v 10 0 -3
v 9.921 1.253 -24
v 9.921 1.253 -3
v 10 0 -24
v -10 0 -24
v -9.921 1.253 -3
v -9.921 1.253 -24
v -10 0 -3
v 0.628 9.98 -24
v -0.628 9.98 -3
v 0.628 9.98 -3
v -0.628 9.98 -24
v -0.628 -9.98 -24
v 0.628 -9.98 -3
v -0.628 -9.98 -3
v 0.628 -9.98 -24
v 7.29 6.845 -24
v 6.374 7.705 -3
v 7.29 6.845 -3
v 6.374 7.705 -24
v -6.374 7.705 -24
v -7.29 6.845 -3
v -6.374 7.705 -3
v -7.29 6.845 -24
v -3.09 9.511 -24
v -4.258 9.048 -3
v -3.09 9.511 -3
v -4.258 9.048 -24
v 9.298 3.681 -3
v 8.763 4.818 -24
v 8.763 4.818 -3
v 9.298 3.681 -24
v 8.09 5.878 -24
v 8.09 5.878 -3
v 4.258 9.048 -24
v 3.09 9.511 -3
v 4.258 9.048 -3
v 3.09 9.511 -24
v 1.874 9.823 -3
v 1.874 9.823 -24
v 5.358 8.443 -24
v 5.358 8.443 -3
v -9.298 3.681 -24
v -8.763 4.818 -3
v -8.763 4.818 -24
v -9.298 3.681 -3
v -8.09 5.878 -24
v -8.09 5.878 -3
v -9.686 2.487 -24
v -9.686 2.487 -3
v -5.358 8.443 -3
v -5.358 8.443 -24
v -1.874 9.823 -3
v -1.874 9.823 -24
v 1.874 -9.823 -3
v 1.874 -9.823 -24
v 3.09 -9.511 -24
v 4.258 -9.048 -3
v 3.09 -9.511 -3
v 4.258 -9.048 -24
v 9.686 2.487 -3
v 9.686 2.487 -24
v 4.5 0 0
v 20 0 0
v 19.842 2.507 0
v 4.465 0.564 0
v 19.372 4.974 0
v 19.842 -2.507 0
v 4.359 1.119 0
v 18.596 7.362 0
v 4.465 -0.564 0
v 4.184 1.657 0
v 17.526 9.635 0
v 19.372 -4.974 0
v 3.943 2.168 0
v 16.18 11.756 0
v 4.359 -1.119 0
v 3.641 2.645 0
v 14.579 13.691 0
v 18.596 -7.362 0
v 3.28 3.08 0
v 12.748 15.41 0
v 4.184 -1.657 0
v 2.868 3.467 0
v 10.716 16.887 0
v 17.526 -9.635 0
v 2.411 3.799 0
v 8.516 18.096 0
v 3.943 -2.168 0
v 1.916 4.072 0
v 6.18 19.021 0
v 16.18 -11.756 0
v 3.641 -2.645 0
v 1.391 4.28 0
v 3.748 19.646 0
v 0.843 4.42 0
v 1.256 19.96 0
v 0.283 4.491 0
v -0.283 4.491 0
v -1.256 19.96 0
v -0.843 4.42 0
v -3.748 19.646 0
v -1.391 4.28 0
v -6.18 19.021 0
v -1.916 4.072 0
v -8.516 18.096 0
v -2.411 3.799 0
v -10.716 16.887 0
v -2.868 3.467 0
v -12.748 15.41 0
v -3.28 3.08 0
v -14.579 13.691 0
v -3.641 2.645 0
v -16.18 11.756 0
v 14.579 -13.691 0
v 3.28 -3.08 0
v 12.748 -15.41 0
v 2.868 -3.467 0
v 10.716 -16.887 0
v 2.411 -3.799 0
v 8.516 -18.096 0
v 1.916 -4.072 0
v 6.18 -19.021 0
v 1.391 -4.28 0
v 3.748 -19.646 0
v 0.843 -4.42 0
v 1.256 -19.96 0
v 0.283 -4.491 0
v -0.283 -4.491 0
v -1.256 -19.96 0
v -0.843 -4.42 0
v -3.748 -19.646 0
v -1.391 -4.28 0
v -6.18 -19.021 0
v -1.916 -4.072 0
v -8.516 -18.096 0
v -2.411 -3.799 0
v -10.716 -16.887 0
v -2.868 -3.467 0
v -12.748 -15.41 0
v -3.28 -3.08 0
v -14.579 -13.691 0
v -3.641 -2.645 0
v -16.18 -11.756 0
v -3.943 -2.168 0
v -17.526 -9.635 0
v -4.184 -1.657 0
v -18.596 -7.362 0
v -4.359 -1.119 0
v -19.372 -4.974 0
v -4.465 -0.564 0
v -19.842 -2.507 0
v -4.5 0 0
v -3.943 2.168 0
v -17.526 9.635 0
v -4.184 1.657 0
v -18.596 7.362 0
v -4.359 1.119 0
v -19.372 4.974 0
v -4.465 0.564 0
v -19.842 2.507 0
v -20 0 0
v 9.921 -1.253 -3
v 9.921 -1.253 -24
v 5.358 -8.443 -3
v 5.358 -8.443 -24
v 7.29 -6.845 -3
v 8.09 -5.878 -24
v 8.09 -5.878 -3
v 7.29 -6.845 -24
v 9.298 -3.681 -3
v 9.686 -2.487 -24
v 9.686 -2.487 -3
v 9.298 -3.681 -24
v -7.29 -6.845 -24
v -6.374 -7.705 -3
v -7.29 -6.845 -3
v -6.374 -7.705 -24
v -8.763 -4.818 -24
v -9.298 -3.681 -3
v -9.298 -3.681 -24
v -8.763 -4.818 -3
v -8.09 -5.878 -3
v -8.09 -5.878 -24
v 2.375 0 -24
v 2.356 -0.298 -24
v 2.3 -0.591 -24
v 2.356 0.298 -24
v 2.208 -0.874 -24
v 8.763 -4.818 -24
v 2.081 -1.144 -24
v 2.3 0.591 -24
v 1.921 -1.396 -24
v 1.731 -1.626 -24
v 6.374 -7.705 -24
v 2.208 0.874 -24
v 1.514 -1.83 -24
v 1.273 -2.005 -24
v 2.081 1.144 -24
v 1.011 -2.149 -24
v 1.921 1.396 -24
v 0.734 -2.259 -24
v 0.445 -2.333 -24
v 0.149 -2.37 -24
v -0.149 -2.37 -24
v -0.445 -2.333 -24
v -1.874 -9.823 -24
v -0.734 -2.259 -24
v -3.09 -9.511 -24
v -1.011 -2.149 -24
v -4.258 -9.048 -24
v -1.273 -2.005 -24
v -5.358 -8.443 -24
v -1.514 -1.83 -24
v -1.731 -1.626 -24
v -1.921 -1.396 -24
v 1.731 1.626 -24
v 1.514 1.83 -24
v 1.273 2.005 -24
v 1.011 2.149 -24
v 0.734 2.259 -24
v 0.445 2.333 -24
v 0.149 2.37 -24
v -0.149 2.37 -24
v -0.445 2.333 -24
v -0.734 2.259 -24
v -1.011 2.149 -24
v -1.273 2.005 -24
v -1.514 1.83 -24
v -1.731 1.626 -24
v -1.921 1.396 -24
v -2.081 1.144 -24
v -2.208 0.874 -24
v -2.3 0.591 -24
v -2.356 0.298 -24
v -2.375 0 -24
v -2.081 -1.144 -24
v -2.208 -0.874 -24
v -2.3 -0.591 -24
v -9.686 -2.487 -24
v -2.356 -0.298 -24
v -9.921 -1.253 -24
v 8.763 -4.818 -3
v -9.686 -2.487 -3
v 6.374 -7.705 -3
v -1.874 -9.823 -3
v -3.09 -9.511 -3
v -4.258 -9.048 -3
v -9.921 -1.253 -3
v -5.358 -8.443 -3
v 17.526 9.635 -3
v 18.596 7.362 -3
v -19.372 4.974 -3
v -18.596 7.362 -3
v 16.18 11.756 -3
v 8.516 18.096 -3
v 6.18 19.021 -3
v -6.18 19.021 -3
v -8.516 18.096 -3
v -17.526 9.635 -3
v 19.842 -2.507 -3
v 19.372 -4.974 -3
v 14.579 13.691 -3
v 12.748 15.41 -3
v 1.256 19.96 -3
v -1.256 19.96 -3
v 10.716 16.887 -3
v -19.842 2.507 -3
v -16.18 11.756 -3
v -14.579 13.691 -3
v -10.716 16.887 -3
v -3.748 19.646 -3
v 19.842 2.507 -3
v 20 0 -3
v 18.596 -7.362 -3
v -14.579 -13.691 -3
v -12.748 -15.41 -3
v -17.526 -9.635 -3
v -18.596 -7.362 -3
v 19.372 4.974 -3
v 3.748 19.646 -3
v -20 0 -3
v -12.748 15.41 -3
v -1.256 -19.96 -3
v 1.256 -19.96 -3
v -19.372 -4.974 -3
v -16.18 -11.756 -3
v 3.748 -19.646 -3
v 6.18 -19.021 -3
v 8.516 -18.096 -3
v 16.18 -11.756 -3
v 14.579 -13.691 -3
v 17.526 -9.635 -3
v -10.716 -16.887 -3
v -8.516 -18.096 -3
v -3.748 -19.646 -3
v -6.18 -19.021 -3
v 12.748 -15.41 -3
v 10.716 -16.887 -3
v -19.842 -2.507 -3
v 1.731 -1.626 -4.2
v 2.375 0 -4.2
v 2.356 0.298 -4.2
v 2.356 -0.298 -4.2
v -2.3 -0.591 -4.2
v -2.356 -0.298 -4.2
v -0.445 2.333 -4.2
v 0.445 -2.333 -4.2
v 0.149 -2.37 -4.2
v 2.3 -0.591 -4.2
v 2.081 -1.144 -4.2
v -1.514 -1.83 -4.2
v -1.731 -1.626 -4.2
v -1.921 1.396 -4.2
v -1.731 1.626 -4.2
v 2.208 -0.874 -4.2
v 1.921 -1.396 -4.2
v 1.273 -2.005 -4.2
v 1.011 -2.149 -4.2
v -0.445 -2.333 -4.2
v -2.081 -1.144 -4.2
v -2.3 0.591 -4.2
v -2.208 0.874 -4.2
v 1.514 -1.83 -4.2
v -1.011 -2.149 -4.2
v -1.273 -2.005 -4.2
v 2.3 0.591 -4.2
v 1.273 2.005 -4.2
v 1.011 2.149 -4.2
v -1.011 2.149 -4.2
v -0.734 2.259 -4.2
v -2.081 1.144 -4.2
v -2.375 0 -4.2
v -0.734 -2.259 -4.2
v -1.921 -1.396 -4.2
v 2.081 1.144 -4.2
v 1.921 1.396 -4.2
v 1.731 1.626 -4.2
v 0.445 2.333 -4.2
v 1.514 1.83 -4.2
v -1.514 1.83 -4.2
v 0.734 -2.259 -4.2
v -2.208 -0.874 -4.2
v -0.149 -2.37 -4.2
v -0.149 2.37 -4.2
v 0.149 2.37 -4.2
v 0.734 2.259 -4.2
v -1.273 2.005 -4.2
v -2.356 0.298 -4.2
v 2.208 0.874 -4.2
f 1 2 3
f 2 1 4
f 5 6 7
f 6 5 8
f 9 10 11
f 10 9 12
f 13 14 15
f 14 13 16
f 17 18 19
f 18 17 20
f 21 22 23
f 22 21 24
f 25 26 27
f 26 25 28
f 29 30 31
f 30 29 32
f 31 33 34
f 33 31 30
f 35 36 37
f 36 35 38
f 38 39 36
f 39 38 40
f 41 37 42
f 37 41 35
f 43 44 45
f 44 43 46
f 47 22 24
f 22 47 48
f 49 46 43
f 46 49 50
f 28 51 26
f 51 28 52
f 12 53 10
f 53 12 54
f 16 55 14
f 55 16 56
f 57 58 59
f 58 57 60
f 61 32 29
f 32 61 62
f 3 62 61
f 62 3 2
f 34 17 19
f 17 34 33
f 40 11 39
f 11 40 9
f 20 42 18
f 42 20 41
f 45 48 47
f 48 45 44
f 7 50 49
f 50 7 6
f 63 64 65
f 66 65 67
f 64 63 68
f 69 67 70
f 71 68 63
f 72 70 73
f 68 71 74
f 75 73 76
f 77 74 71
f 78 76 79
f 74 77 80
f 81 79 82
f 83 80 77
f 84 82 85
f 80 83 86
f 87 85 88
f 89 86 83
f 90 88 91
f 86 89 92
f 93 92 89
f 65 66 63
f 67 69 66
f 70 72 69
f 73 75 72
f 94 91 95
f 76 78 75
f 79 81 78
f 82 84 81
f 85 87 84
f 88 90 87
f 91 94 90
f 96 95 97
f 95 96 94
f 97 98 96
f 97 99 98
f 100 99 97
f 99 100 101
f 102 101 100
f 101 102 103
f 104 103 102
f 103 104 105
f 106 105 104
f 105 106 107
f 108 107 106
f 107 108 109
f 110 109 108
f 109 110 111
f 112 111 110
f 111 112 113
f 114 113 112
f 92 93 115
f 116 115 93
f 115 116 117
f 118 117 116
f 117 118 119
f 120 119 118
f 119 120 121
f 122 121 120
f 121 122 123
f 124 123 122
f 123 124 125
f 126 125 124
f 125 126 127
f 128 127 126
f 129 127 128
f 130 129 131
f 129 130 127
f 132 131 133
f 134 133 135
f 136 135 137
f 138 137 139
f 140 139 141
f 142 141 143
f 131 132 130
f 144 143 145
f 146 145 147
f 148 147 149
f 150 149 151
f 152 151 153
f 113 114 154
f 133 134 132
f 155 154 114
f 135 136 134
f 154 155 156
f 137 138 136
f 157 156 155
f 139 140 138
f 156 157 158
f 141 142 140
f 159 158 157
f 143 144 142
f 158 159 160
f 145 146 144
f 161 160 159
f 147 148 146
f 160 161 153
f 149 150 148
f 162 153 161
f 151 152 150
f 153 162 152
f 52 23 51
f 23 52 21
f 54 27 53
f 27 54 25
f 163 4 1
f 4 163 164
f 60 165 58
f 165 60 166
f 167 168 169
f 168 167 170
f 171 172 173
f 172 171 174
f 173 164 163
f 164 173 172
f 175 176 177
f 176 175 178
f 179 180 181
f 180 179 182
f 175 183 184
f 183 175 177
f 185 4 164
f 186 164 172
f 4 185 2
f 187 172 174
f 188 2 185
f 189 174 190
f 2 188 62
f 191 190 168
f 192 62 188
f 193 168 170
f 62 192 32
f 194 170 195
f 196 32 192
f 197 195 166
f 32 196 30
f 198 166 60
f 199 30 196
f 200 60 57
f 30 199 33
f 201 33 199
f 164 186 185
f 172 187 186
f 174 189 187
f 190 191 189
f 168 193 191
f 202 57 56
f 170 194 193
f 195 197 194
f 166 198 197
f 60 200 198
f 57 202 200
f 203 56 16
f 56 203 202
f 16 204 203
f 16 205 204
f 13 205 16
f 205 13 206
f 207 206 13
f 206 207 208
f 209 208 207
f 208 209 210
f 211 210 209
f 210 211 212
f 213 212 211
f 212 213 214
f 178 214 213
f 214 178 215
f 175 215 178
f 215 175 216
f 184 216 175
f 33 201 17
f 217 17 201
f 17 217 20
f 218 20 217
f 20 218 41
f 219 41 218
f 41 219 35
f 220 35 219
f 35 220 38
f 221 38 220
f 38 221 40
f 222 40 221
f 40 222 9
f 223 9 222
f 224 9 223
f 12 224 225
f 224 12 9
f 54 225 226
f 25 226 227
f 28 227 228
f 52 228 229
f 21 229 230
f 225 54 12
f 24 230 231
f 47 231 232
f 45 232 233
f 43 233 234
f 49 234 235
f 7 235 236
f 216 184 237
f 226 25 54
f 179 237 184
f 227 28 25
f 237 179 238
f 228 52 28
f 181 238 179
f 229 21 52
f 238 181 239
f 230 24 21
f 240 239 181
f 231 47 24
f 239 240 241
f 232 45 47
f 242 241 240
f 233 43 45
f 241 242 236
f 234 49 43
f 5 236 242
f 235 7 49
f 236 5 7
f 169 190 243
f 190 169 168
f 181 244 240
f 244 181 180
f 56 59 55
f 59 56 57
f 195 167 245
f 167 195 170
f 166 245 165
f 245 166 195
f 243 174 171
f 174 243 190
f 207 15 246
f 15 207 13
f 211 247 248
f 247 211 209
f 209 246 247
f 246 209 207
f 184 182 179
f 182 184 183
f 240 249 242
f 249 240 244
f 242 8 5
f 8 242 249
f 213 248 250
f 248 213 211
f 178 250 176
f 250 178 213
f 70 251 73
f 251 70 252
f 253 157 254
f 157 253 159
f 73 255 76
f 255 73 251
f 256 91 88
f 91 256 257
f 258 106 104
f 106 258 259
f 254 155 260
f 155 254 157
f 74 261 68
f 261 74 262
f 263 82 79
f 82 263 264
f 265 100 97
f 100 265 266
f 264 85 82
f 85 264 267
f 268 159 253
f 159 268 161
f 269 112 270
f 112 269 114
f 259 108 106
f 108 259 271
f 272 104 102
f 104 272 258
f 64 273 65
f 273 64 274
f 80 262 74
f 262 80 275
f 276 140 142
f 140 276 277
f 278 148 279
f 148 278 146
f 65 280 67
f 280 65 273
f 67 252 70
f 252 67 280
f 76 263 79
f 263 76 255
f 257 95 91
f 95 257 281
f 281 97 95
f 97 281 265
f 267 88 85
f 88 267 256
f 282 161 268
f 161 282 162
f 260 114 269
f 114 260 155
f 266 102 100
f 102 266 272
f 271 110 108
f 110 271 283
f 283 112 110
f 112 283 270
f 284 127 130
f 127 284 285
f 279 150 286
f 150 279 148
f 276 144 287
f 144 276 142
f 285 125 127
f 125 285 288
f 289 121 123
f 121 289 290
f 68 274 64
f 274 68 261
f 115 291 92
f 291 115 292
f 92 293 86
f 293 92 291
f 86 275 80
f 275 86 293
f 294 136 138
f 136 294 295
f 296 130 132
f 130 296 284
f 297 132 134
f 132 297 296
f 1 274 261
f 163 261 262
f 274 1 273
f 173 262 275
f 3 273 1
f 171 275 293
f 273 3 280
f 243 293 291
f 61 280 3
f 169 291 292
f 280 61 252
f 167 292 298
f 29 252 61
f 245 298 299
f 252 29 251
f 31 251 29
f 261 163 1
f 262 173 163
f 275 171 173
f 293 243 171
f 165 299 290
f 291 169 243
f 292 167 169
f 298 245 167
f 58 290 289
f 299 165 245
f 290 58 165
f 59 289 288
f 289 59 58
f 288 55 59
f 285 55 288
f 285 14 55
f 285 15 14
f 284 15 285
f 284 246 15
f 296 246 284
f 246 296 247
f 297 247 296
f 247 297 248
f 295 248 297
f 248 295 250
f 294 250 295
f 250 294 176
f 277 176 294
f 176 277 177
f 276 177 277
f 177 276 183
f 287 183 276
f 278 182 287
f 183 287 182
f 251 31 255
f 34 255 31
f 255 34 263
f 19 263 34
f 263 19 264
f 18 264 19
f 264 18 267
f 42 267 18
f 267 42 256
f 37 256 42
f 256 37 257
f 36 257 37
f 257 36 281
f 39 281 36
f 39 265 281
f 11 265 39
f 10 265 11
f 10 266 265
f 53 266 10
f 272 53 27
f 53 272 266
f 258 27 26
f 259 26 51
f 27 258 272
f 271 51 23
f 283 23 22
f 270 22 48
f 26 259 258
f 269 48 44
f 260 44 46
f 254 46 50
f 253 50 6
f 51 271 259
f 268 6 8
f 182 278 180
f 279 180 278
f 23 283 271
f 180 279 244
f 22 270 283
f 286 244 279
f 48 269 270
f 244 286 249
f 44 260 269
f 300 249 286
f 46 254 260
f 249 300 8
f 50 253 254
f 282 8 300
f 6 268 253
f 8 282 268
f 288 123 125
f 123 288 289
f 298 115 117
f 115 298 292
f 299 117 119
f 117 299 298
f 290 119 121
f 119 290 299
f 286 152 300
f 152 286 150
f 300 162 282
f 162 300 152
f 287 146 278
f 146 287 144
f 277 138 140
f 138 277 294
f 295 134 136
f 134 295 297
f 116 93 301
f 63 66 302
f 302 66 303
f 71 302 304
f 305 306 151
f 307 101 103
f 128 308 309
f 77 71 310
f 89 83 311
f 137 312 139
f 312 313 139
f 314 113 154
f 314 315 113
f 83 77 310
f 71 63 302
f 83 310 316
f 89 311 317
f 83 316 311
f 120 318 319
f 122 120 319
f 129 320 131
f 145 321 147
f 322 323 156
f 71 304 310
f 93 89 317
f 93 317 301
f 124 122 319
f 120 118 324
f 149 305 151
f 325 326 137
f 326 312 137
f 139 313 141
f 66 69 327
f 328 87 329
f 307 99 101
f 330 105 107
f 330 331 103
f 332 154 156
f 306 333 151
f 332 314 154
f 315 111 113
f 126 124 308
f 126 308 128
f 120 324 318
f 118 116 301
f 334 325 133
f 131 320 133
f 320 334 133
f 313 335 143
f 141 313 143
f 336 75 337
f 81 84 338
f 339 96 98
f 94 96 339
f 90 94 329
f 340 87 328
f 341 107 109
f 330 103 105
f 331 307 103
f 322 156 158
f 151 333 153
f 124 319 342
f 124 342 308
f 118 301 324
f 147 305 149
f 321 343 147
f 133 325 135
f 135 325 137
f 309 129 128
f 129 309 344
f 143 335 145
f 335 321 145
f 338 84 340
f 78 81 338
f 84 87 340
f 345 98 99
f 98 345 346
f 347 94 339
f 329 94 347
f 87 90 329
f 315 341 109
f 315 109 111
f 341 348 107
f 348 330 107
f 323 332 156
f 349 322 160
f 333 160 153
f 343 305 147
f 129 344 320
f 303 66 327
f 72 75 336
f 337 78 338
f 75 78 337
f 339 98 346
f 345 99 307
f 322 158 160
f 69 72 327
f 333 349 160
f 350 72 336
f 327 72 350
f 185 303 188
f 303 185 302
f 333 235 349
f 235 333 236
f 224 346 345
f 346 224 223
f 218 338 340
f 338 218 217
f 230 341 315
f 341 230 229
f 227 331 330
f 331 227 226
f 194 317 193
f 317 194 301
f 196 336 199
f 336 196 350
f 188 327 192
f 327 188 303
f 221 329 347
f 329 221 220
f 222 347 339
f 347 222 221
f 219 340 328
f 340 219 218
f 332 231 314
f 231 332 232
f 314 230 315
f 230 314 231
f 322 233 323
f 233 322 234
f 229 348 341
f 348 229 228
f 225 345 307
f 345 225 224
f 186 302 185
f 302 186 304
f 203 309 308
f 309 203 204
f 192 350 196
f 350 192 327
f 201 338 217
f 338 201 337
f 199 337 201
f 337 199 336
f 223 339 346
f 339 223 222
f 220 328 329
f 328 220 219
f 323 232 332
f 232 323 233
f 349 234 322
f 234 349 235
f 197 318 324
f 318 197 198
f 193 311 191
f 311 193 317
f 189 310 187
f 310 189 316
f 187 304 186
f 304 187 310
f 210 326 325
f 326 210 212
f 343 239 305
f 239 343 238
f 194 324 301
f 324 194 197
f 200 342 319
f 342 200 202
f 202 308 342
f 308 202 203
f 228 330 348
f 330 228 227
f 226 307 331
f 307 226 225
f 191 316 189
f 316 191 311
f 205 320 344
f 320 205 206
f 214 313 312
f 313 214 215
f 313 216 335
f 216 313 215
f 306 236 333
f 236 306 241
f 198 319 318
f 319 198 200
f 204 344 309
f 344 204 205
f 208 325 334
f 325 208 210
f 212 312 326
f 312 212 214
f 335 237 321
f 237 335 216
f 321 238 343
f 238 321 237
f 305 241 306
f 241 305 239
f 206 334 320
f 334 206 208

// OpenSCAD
$fn = 50;


difference() {
	union() {
		translate(v = [0, 0, -24.0000000000]) {
			cylinder(h = 24, r = 10.0000000000);
		}
		translate(v = [0, 0, -3.0000000000]) {
			cylinder(h = 3, r = 20.0000000000);
		}
	}
	union() {
		translate(v = [0, 0, 0]) {
			rotate(a = [0, 0, 0]) {
				difference() {
					union() {
						#translate(v = [0, 0, -24.0000000000]) {
							cylinder(h = 24, r = 2.2500000000);
						}
						#translate(v = [0, 0, -4.2000000000]) {
							cylinder(h = 4.2000000000, r = 10.0000000000, r1 = 2.3750000000, r2 = 4.5000000000);
						}
						#translate(v = [0, 0, -24.0000000000]) {
							cylinder(h = 24, r = 2.3750000000);
						}
						#translate(v = [0, 0, -24.0000000000]) {
							cylinder(h = 24, r = 2.2500000000);
						}
					}
					union();
				}
			}
		}
	}
}
